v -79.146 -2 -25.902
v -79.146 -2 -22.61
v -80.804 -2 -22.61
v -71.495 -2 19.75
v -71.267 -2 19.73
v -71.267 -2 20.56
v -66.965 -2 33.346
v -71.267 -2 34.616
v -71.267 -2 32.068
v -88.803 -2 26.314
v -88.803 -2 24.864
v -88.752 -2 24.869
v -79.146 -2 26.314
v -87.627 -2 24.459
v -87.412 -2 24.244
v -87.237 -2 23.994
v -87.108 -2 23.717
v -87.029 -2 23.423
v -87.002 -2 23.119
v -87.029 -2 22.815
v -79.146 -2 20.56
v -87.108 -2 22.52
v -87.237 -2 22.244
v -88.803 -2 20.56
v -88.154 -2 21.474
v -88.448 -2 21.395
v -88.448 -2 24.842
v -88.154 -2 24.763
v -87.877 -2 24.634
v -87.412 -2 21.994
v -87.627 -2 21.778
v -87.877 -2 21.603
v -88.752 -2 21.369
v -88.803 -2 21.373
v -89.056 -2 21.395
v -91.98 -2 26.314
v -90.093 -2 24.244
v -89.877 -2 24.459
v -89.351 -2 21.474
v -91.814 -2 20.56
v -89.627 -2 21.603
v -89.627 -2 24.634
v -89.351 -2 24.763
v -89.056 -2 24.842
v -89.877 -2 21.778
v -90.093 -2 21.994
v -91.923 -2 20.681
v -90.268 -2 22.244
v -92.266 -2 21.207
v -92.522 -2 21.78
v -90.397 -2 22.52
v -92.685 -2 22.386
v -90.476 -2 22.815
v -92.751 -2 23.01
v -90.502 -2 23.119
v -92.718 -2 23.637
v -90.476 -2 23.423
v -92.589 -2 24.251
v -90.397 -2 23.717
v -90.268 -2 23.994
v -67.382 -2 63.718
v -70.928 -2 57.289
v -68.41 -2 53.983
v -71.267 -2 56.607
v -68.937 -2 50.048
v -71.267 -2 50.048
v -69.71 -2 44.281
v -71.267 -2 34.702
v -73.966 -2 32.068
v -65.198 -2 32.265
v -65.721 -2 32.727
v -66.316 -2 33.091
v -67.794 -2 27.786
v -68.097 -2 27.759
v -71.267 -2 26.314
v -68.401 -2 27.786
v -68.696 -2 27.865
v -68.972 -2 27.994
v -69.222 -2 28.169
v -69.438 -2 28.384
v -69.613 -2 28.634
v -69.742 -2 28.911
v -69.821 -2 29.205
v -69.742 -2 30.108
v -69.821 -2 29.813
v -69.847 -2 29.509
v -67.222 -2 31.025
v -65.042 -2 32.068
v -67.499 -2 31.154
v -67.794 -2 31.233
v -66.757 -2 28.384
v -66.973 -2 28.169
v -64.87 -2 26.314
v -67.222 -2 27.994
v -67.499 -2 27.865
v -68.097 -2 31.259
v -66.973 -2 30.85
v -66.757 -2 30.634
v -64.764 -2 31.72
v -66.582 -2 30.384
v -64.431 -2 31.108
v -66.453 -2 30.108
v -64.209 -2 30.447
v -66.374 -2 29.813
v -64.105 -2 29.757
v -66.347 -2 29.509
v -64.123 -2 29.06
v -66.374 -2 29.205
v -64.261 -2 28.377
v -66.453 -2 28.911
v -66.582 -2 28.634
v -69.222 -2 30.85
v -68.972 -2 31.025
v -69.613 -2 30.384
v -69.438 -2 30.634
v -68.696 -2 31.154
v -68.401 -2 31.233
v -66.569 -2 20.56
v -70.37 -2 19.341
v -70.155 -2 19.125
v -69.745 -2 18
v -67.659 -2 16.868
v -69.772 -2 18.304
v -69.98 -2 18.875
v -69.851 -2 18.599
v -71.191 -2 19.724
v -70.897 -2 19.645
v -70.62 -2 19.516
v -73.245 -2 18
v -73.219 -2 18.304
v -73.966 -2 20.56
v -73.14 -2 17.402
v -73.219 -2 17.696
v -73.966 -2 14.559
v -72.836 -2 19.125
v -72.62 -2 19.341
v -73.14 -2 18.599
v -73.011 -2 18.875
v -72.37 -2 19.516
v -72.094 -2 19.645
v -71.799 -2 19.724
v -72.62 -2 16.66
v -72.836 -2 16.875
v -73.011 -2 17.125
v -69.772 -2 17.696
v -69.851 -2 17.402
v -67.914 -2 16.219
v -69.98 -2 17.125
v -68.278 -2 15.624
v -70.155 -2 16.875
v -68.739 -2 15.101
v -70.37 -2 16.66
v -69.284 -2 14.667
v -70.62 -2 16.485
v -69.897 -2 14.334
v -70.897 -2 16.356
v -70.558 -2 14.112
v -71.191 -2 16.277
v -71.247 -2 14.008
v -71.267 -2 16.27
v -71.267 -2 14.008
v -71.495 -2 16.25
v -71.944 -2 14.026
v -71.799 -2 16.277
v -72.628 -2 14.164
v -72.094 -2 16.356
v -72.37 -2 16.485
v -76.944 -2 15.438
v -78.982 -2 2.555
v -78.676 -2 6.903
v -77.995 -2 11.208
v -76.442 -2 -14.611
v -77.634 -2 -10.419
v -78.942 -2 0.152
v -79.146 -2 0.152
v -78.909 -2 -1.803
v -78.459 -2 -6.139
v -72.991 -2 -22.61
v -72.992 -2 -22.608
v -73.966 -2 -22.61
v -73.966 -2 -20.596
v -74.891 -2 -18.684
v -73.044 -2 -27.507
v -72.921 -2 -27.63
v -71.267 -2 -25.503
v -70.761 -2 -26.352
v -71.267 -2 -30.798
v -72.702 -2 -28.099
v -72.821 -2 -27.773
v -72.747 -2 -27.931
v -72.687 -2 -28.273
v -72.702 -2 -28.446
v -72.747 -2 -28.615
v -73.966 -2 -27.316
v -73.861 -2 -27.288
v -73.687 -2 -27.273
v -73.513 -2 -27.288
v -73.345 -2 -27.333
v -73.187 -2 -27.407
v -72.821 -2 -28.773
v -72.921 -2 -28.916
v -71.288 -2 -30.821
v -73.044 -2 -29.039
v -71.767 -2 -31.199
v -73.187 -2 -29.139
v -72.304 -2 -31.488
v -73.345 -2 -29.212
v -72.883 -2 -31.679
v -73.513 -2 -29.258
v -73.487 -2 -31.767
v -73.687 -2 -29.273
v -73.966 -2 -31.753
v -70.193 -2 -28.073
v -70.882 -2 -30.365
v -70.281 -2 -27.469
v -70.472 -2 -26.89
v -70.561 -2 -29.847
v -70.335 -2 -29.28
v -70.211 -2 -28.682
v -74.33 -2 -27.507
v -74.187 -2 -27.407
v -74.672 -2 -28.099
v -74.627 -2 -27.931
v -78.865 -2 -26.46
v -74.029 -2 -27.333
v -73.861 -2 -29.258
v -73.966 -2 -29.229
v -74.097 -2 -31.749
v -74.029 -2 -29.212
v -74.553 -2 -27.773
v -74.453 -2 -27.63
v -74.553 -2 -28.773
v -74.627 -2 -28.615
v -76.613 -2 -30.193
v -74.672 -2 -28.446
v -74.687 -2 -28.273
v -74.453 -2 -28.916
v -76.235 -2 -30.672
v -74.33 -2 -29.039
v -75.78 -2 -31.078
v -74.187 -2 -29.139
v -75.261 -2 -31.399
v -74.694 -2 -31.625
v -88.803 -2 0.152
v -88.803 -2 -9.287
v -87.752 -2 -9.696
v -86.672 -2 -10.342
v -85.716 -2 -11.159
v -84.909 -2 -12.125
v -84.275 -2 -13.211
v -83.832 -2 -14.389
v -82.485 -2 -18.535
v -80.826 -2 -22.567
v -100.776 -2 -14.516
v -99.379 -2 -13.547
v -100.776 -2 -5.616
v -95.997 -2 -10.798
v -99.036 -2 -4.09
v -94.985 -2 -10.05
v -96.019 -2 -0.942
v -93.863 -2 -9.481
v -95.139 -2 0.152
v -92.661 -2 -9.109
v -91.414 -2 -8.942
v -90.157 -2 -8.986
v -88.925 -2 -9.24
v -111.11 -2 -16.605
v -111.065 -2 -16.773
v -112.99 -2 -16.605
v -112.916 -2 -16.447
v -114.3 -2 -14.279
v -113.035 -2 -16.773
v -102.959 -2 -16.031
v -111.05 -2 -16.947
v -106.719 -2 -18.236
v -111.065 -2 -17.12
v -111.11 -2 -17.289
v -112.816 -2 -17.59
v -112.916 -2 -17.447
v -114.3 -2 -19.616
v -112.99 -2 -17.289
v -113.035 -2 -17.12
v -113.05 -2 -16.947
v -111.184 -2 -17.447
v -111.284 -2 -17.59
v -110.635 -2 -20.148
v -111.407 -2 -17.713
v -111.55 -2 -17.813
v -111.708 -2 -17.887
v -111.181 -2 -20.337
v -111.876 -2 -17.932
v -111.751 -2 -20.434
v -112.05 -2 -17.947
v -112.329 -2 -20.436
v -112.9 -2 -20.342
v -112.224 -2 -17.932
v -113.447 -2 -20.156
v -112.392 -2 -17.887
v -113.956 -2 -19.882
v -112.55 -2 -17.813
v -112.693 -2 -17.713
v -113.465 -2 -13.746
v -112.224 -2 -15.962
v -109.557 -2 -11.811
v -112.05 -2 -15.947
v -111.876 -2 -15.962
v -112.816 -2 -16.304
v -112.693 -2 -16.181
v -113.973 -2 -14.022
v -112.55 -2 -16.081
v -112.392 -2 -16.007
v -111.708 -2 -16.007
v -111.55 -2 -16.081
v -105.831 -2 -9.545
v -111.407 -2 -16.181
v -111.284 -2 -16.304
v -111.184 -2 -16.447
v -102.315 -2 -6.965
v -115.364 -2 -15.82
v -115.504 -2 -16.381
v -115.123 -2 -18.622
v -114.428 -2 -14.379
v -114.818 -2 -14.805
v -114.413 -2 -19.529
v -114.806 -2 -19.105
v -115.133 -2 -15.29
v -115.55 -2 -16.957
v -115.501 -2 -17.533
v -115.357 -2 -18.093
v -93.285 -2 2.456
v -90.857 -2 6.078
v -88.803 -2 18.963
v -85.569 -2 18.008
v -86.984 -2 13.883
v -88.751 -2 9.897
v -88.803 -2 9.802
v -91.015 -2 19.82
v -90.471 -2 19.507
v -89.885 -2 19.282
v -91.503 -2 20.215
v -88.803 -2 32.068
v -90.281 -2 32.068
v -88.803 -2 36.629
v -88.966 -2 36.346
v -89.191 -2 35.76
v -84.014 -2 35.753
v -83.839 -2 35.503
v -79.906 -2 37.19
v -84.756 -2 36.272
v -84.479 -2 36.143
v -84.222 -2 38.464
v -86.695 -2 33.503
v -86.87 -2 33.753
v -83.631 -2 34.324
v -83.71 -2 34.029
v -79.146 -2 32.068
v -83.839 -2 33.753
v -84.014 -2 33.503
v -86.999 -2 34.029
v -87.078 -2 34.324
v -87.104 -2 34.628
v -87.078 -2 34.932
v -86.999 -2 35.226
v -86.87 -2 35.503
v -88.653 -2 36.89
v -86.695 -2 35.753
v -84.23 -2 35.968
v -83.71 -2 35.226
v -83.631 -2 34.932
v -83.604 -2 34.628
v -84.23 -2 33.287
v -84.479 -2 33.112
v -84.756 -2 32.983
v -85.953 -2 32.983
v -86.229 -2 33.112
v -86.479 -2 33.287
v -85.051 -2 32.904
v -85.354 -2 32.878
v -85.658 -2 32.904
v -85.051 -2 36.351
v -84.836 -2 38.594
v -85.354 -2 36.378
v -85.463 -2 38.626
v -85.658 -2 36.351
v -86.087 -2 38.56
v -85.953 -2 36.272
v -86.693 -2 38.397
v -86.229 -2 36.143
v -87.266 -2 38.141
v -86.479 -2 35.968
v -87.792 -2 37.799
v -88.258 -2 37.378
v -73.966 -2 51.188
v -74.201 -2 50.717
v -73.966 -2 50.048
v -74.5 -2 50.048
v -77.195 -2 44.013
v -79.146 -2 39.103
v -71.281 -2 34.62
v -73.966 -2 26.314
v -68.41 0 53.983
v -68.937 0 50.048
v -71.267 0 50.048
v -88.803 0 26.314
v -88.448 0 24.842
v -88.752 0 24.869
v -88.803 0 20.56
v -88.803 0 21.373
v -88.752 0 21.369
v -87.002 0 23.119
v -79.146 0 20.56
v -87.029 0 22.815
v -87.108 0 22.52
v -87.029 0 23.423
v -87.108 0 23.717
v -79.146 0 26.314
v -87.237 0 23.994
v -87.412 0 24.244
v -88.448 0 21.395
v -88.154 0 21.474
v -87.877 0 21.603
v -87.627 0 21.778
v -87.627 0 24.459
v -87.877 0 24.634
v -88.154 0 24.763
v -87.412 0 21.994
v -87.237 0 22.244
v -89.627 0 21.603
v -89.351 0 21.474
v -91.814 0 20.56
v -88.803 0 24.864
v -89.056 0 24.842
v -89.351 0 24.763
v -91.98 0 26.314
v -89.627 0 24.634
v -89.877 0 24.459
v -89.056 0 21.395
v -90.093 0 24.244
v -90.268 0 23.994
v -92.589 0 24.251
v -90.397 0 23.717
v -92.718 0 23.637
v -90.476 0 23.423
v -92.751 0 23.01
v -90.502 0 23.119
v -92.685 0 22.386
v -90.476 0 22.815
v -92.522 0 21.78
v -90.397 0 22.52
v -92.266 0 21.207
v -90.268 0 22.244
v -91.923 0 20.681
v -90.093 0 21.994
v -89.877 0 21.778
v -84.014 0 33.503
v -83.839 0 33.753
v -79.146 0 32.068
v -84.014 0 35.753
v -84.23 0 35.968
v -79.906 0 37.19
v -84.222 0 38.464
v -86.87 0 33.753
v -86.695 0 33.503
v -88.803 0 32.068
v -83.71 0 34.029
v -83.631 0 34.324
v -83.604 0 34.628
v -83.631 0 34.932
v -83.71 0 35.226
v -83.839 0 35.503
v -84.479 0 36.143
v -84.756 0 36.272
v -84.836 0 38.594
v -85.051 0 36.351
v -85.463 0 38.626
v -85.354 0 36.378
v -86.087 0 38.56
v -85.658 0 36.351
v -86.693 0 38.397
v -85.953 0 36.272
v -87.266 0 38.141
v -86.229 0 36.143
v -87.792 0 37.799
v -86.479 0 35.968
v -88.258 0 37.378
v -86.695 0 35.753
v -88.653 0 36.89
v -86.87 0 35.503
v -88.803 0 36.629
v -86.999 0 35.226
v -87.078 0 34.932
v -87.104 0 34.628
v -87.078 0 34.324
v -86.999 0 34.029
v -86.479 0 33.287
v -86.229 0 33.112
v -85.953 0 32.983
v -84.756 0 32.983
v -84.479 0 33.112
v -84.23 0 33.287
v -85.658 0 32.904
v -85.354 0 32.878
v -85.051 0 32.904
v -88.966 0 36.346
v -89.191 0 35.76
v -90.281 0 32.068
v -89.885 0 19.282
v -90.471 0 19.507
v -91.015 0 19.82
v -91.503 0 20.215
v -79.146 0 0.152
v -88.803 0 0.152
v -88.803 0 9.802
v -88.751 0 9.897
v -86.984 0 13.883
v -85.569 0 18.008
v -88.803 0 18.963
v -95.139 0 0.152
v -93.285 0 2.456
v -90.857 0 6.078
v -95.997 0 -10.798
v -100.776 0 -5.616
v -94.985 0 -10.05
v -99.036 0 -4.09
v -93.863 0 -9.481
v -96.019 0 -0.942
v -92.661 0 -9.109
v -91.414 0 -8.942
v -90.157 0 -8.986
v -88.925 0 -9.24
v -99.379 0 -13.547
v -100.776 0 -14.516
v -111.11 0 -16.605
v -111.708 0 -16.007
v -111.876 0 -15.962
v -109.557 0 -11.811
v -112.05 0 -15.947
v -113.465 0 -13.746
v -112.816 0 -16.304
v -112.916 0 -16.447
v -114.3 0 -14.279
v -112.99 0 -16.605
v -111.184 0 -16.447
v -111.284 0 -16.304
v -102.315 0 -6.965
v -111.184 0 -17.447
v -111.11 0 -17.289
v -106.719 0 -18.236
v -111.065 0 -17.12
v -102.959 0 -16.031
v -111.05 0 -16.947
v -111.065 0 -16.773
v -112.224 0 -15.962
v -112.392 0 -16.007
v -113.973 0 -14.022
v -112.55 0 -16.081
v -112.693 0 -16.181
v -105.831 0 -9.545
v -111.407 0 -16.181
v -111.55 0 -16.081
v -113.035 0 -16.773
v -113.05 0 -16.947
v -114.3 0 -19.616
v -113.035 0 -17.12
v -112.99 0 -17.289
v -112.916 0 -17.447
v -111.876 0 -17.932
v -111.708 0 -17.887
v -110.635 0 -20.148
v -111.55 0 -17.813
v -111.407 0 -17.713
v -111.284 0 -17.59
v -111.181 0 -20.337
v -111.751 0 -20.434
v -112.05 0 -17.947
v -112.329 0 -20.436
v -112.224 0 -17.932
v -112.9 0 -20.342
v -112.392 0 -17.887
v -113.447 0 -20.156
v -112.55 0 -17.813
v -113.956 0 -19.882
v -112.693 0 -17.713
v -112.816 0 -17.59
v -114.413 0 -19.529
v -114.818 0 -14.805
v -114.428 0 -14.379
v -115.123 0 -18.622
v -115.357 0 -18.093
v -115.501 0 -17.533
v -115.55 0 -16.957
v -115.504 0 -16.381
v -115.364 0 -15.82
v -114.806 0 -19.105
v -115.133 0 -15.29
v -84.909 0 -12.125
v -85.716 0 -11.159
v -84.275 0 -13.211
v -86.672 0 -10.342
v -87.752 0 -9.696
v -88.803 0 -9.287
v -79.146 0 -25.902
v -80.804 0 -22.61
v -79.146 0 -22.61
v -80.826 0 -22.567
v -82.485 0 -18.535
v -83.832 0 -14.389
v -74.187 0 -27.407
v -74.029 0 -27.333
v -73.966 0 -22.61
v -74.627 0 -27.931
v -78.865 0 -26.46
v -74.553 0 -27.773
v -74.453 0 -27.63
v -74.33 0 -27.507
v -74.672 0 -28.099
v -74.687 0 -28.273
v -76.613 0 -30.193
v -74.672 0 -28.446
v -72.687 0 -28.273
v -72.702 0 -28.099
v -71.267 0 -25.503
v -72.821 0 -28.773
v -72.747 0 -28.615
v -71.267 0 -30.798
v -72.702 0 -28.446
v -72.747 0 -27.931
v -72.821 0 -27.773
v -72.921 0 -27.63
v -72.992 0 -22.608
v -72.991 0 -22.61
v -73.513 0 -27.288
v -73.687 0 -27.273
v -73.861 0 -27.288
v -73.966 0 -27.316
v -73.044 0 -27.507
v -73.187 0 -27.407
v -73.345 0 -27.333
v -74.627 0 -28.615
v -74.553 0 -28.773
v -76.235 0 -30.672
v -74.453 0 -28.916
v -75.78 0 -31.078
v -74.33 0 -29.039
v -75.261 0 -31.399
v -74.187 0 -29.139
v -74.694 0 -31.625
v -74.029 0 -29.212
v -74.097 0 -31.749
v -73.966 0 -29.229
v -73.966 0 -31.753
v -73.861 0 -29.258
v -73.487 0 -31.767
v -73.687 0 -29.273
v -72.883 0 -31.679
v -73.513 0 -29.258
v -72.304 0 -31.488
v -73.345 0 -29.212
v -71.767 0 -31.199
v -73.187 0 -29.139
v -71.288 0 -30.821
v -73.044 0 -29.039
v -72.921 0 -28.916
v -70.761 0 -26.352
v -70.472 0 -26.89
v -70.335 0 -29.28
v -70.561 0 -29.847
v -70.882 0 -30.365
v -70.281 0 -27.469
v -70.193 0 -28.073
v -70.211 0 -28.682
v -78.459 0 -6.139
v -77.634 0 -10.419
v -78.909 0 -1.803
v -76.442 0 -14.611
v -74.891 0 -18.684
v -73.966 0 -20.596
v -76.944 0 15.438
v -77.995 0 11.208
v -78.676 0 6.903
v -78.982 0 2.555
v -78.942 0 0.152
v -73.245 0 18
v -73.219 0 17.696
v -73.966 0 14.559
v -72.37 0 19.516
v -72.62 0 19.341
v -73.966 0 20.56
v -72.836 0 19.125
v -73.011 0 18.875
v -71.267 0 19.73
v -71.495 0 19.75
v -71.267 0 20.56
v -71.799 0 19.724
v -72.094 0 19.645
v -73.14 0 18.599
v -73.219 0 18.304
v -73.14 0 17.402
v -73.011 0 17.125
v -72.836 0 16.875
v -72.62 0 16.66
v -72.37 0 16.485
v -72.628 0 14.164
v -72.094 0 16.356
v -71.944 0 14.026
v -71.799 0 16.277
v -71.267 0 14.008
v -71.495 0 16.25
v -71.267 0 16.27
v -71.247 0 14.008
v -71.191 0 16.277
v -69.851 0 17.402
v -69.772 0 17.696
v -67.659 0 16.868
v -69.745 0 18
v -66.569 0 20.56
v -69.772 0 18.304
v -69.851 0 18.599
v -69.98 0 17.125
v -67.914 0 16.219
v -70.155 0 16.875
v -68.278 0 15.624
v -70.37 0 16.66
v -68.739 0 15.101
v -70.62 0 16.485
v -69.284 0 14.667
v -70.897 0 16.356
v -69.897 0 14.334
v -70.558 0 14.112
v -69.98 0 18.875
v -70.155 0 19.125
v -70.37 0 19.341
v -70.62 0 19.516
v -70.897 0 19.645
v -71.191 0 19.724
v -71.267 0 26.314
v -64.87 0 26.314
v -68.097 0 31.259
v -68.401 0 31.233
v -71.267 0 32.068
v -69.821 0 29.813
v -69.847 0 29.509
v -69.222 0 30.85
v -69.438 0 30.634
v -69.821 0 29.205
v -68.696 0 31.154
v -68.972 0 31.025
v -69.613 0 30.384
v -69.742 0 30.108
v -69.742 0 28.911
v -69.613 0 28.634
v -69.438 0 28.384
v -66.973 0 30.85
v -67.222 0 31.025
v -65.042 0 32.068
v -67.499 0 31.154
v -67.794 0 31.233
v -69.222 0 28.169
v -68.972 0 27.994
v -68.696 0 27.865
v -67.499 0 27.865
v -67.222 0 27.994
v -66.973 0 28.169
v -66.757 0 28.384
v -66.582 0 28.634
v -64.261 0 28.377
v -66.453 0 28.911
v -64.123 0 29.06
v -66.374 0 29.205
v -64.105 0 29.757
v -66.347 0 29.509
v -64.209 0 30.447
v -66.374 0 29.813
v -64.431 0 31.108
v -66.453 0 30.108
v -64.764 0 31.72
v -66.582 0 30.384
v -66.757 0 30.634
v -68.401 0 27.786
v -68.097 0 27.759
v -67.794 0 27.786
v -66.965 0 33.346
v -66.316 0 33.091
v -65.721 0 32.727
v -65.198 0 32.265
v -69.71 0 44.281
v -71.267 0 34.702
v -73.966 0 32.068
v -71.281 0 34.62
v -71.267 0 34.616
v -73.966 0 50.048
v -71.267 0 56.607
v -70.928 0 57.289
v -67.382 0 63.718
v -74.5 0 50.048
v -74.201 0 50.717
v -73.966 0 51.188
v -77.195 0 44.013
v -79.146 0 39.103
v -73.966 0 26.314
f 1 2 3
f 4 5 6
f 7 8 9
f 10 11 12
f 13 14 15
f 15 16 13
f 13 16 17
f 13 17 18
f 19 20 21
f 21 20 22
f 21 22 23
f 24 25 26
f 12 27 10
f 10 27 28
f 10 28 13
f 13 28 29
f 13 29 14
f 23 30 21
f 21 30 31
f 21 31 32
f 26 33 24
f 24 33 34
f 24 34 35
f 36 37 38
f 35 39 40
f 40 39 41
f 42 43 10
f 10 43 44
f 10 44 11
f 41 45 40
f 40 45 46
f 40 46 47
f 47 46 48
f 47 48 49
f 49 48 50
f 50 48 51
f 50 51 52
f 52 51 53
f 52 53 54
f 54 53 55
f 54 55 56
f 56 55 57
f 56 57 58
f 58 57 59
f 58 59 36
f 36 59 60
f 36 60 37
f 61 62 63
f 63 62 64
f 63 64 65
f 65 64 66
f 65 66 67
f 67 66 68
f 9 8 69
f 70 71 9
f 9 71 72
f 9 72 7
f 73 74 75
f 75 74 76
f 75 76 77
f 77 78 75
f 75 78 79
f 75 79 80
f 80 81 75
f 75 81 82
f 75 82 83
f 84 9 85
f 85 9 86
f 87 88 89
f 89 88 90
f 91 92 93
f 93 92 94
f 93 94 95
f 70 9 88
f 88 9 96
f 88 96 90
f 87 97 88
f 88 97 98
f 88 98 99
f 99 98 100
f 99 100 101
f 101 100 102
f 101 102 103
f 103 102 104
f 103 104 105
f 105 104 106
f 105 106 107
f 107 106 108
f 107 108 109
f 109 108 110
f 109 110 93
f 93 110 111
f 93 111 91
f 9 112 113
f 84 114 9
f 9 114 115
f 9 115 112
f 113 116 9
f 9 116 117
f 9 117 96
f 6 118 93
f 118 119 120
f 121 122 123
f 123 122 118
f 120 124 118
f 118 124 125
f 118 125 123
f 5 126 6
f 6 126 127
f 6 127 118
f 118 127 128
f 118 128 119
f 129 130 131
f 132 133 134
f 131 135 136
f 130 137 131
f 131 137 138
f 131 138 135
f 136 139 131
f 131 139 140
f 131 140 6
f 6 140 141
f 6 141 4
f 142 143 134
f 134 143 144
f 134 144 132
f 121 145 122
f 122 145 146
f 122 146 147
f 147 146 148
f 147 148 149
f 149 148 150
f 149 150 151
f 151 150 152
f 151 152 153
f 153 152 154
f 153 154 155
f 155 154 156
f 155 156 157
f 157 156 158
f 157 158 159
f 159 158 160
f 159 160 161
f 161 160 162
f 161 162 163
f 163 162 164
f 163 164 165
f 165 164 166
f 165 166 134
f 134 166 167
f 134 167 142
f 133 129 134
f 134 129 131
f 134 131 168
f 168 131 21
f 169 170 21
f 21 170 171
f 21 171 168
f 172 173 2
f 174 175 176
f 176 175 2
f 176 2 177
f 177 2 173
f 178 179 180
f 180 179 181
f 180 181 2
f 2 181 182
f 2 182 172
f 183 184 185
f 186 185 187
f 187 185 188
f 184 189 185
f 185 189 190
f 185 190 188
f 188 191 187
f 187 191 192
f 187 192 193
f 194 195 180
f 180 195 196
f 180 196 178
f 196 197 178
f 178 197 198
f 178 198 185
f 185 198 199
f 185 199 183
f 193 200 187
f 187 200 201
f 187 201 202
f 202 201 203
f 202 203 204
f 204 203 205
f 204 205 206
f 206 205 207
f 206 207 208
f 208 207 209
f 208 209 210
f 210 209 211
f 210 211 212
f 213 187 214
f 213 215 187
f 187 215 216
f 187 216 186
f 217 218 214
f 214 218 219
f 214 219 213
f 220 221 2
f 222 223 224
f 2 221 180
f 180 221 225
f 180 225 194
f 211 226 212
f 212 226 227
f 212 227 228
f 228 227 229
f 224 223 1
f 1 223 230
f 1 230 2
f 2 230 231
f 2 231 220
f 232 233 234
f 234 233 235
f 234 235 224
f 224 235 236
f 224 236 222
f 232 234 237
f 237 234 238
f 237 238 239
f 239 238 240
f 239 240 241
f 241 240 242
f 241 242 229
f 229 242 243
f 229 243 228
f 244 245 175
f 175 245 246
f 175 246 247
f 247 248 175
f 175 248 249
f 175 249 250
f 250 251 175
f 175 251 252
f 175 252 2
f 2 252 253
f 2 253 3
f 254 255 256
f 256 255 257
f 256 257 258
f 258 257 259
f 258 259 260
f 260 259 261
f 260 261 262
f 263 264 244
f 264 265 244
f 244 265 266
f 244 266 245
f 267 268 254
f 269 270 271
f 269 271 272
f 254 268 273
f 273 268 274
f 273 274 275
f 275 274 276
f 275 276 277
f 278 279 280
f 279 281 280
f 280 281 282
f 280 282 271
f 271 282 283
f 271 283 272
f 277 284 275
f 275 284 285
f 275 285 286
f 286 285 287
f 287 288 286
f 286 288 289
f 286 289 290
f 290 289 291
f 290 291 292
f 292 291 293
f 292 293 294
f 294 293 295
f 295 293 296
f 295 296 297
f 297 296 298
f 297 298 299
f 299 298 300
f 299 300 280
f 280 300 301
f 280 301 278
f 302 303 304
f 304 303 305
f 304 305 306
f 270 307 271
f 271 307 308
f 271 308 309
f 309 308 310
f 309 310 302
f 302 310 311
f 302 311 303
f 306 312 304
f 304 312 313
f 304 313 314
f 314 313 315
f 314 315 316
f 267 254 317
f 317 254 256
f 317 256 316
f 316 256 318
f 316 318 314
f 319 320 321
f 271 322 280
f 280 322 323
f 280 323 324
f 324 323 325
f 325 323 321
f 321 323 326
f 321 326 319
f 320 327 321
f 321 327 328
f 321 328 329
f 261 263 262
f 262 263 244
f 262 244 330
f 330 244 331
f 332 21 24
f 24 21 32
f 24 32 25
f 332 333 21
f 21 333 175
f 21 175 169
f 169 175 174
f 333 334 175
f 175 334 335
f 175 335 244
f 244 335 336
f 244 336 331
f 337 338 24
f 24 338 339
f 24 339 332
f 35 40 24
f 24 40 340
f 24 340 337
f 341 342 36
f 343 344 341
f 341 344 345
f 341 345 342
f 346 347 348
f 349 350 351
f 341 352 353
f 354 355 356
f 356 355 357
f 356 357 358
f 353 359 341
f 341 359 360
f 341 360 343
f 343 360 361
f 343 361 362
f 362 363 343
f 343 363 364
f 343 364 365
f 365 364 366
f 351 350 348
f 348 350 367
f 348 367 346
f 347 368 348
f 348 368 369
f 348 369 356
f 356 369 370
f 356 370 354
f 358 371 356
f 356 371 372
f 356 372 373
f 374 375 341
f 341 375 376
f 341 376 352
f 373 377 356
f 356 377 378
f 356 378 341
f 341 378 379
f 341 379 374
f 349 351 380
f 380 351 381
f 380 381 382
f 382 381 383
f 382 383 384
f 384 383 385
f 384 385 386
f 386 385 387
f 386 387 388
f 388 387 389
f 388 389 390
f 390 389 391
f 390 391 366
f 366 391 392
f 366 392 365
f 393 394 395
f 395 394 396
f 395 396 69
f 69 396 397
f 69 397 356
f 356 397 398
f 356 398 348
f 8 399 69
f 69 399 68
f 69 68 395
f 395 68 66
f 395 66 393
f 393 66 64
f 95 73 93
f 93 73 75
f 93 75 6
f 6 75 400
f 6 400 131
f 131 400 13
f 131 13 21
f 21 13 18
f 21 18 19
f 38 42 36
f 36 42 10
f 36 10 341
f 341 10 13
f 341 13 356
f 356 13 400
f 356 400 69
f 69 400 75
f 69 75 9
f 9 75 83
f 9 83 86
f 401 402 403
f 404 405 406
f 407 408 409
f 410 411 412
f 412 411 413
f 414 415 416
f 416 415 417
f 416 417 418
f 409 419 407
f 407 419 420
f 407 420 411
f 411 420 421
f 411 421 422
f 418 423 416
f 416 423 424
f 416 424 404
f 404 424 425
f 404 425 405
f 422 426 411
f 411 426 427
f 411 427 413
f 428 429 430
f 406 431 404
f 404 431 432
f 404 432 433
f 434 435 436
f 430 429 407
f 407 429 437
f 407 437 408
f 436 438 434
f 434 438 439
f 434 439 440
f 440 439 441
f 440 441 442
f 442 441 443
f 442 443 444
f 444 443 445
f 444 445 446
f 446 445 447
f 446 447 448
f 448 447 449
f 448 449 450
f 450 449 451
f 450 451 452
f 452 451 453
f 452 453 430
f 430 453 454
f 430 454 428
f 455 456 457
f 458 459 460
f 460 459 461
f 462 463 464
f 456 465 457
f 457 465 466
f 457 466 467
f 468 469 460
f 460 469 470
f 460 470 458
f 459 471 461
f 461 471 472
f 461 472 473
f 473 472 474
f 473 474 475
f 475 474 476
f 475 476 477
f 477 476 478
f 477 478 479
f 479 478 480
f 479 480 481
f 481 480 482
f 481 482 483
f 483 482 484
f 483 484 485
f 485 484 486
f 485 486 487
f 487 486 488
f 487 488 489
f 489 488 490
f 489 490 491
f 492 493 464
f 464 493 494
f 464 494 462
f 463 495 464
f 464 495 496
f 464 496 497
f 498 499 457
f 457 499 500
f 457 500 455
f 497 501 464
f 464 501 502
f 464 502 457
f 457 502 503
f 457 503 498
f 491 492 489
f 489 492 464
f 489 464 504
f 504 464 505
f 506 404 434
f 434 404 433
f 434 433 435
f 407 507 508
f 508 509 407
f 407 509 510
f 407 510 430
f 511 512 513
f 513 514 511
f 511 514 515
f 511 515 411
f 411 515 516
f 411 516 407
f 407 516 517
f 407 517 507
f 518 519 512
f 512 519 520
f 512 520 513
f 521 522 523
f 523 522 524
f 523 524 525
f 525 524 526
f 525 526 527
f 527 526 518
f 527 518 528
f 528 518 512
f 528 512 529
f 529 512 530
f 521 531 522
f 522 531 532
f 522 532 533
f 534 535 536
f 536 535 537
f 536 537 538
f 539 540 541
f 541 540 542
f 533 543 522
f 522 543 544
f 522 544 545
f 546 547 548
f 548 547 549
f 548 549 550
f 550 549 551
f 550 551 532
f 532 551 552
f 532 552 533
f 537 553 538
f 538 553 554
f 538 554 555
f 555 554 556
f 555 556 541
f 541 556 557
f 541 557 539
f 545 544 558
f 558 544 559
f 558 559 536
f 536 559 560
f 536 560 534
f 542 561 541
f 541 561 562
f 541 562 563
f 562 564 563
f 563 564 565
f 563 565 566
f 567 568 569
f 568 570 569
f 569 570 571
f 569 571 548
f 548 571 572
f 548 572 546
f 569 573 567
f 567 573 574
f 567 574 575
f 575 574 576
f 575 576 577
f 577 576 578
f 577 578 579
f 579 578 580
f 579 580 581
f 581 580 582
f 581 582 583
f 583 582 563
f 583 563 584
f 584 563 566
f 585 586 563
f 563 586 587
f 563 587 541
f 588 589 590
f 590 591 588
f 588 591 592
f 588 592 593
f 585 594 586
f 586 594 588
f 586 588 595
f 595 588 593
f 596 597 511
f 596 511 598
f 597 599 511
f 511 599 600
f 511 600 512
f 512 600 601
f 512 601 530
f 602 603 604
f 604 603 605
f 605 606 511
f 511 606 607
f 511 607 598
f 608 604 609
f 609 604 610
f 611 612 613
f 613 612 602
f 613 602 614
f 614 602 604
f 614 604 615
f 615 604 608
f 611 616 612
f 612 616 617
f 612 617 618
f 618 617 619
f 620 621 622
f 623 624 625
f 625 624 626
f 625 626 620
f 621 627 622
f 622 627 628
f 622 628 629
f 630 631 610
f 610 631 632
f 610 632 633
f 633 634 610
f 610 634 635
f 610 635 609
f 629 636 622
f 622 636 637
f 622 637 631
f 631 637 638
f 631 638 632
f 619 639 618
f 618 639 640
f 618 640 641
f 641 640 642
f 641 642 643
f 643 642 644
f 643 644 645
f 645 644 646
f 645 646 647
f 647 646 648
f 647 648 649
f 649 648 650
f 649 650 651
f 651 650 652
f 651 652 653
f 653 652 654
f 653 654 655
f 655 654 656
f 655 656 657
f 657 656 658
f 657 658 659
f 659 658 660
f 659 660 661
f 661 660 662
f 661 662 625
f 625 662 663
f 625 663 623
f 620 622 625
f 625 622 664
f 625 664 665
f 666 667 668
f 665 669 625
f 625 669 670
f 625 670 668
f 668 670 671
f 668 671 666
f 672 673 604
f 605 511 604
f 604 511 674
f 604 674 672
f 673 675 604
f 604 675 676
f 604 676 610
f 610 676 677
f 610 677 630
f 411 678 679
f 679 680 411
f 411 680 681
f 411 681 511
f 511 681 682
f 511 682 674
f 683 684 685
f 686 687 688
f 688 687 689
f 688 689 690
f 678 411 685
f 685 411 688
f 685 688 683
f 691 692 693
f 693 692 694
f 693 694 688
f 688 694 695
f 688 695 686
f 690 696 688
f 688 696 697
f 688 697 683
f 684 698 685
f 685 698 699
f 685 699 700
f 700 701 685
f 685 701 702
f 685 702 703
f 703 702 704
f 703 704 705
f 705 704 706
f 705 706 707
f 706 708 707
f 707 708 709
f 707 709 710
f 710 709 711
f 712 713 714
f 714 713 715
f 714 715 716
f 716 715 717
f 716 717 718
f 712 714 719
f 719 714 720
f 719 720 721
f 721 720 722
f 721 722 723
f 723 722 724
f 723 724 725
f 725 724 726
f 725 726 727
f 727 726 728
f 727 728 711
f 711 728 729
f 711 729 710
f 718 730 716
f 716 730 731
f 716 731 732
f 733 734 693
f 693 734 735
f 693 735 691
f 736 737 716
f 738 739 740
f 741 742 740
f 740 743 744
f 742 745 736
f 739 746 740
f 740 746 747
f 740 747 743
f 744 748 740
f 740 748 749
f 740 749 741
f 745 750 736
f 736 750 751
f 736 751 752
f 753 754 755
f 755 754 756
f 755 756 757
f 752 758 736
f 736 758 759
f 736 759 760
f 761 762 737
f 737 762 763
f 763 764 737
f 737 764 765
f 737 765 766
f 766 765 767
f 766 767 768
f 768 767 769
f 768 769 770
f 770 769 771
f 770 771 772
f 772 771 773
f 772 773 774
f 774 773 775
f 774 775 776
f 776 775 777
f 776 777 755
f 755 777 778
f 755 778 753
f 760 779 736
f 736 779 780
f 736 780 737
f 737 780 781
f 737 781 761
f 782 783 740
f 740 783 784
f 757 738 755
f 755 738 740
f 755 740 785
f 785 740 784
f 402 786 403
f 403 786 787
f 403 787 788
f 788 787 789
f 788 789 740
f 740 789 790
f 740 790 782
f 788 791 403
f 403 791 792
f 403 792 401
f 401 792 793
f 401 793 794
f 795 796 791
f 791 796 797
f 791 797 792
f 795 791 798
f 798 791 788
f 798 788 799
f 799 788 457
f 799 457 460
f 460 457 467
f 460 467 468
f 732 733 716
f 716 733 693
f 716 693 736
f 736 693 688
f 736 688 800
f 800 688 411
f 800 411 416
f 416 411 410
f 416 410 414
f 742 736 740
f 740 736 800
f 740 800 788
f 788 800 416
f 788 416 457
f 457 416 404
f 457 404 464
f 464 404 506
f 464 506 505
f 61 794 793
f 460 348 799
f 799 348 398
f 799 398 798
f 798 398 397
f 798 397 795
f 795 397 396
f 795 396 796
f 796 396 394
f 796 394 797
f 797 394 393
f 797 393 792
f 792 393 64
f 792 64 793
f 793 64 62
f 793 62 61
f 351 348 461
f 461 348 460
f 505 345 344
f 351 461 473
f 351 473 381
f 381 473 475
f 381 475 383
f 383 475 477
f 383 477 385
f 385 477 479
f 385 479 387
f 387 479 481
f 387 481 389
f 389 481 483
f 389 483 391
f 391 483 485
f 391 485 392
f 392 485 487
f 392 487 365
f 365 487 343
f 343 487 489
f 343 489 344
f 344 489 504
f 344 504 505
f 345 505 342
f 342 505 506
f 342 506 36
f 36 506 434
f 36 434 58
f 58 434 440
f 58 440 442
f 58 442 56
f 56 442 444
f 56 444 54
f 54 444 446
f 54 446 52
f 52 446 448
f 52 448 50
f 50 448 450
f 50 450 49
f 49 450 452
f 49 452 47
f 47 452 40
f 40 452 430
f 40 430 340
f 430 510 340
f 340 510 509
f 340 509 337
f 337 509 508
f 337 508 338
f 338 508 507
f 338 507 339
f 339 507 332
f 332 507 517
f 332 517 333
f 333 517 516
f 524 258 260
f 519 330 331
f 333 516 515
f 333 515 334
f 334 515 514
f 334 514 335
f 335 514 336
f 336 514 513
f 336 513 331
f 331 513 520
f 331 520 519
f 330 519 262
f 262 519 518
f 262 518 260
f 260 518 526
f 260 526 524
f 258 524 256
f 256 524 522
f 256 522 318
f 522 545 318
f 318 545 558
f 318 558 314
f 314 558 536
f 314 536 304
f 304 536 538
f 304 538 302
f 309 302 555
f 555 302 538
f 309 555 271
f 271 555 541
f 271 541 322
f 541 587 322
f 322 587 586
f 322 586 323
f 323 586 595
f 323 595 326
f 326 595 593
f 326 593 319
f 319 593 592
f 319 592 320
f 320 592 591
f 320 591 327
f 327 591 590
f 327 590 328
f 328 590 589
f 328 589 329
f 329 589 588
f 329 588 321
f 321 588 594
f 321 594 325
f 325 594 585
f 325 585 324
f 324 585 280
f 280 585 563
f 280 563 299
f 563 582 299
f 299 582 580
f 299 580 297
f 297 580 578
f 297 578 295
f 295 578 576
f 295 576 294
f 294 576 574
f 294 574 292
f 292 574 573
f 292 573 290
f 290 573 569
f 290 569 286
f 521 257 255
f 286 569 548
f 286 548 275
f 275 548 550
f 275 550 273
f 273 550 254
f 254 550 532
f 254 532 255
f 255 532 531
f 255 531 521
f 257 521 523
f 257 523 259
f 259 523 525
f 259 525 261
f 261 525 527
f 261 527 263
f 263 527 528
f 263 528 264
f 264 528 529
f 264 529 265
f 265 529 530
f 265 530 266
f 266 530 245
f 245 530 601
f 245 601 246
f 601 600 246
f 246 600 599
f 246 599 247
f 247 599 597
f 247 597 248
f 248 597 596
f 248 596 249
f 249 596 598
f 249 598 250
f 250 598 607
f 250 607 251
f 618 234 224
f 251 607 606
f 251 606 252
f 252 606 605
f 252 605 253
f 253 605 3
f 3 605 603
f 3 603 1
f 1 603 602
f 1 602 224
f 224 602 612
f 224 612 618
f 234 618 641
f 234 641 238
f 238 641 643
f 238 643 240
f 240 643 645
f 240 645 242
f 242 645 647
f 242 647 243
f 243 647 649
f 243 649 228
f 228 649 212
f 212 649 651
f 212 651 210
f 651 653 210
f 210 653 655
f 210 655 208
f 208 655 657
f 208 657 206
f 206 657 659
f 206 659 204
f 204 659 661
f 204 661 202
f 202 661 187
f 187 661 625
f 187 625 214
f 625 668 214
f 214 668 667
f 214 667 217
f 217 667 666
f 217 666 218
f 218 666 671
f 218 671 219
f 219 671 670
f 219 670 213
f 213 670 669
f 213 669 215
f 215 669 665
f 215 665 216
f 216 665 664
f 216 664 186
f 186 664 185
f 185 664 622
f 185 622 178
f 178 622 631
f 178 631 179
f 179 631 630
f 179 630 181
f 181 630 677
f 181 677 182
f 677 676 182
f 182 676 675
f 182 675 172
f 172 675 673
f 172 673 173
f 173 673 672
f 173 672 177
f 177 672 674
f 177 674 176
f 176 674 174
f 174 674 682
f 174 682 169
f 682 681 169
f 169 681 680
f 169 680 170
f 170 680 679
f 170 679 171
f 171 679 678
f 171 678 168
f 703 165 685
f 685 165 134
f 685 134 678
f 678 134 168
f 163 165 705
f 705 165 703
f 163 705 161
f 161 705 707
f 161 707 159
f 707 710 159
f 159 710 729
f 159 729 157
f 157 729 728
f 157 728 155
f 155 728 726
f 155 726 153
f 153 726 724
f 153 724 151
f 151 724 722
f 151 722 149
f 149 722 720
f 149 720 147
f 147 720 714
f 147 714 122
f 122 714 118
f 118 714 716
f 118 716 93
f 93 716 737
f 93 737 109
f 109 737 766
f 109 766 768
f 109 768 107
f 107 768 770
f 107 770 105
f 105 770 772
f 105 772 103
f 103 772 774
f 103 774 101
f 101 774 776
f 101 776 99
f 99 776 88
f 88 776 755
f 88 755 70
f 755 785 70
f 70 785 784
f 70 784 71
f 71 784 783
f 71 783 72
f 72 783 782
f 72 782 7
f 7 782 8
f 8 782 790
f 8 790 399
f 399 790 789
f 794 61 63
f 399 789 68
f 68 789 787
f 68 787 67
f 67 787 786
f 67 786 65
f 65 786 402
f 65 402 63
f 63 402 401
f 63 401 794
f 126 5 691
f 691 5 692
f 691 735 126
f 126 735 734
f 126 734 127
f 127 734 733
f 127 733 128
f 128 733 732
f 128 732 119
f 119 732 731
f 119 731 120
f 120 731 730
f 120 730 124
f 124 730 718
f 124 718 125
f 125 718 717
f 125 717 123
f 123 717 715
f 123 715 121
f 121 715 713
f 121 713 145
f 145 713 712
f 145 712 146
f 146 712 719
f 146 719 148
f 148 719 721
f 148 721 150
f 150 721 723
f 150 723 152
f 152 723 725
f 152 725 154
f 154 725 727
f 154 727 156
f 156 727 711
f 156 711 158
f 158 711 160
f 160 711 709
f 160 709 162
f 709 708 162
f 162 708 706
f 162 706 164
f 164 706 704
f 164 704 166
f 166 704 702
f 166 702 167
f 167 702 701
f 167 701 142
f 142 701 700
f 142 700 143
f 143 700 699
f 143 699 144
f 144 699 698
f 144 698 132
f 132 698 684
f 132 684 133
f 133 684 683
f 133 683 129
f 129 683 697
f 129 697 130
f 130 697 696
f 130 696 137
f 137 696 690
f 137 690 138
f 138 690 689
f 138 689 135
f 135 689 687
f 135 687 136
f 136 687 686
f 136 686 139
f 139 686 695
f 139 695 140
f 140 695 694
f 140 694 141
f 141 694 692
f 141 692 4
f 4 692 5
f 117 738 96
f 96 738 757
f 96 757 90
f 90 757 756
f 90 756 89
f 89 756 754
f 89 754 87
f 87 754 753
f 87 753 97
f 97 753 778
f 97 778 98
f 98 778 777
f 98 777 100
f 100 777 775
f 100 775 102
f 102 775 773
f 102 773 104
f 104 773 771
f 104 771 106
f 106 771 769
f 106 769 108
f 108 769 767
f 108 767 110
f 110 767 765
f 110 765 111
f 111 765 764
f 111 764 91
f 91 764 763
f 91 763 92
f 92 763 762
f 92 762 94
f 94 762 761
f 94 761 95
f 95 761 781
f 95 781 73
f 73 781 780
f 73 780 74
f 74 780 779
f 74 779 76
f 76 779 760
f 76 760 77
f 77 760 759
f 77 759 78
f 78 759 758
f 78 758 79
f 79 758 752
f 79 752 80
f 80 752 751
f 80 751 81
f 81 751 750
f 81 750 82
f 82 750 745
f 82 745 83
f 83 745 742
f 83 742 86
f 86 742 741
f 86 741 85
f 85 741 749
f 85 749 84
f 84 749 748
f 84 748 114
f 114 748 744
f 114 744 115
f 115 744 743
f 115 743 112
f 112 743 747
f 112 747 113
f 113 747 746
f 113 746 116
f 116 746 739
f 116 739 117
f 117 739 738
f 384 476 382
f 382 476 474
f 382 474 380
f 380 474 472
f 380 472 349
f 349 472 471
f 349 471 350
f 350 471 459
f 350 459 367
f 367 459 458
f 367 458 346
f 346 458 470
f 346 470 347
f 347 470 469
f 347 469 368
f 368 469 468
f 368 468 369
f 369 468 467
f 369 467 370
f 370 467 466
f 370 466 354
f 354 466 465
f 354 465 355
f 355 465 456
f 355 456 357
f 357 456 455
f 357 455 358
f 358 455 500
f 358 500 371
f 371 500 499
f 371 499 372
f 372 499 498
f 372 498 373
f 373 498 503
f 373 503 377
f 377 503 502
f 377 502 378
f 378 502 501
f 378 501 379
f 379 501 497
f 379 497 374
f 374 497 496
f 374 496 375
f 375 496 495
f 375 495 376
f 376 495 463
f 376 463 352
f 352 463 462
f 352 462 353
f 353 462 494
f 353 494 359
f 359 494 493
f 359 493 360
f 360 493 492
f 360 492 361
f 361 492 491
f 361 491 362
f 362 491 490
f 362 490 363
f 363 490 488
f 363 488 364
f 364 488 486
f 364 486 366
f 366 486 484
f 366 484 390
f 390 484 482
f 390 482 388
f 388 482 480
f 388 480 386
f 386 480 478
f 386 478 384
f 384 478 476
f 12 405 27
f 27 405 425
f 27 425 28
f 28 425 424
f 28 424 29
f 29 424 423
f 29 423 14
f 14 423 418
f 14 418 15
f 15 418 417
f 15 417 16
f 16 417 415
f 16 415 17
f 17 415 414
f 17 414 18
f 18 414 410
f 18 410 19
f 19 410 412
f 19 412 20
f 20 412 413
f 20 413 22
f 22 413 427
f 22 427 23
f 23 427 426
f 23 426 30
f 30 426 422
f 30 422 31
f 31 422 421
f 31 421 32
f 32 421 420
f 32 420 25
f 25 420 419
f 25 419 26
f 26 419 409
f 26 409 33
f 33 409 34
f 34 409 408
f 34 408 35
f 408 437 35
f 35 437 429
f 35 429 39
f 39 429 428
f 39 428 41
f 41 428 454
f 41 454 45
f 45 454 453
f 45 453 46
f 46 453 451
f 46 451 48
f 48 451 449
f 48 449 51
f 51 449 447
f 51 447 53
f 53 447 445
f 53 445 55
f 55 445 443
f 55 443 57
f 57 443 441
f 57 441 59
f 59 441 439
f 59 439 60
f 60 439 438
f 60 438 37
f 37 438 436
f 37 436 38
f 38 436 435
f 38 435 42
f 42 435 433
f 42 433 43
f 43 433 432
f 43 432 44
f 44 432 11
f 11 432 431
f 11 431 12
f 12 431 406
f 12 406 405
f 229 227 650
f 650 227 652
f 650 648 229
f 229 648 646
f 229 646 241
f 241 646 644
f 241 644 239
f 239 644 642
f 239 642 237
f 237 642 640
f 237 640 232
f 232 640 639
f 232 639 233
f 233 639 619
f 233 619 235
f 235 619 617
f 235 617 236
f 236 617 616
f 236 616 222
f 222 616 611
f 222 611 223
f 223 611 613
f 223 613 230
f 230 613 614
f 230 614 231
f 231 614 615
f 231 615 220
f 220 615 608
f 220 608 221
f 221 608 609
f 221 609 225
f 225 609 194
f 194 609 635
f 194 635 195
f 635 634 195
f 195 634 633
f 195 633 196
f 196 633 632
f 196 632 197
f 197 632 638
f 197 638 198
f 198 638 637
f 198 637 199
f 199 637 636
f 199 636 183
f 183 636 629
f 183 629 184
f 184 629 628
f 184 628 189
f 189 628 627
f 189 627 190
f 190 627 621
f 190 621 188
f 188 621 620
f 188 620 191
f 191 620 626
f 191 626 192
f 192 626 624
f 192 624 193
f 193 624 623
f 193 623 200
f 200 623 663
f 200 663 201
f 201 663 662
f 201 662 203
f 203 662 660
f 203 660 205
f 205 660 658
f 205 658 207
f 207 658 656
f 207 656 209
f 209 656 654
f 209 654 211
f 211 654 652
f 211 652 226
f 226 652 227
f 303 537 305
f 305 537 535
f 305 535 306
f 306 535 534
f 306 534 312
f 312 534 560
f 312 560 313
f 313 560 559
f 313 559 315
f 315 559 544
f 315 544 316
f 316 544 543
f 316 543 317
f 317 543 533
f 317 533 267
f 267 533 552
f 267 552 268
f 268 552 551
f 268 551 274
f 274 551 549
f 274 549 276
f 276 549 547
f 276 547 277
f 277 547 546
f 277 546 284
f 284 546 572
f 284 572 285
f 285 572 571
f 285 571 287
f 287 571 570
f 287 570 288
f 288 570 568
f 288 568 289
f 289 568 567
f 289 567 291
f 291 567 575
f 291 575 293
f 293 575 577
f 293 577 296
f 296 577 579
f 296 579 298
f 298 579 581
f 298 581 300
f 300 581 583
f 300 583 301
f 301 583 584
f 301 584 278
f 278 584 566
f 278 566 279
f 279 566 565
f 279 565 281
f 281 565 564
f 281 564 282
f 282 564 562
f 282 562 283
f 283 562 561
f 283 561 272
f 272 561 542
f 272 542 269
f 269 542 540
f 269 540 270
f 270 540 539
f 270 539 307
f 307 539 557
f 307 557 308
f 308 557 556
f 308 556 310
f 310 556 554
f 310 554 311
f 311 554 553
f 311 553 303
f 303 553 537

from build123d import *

# Parameters (mm, degrees)
ESQUISSE1_R        = 1
ESQUISSE1_R_2      = 1.75
BOSS_EXTRU_1_DEPTH = 2


with BuildPart() as part:
    # Esquisse1 → Boss.-Extru.1 (new body)
    with BuildSketch(Plane(origin=(-102.847426705, 0, 18.134776225), x_dir=(-0.9358900387216226, 0, 0.3522922585320884), z_dir=(0, -1, 0))):
        with BuildLine():
            Line((-29.681110437, -6.92992201), (-25.193077168, -6.601962606))
            ThreePointArc((-25.193077168, -6.601962606), (-31.376531627, 14.125140597), (-45.701784247, 30.331159651))
            ThreePointArc((-45.701784247, 30.331159651), (-46.468142588, 35.221220478), (-41.578081761, 35.987578819))
            ThreePointArc((-41.578081761, 35.987578819), (-34.948662945, 30.333854293), (-29.254192772, 23.739401754))
            ThreePointArc((-29.254192772, 23.739401754), (-22.67424344, 20.714879645), (-16.604130615, 24.664208385))
            ThreePointArc((-16.604130615, 24.664208385), (-11.931476736, 32.014751147), (-6.198466062, 38.571942755))
            ThreePointArc((-6.198466062, 38.571942755), (-1.248925128, 38.526726063), (-1.294141821, 33.577185129))
            ThreePointArc((-1.294141821, 33.577185129), (-13.111349847, 15.448077308), (-16.215278728, -5.968658704))
            Line((-16.215278728, -5.968658704), (-11.727259944, -5.640718208))
            ThreePointArc((-11.727259944, -5.640718208), (-8.820974111, -6.603051654), (-7.446392196, -9.338578579))
            Line((-7.446392196, -9.338578579), (-6.571881132, -21.306670758))
            ThreePointArc((-6.571881132, -21.306670758), (-7.534214578, -24.212956591), (-10.269741503, -25.587538506))
            Line((-10.269741503, -25.587538506), (-14.757760288, -25.915479002))
            ThreePointArc((-14.757760288, -25.915479002), (-15.331661084, -40.585109619), (-17.13310324, -55.155018018))
            ThreePointArc((-17.13310324, -55.155018018), (-20.734362801, -40.921154617), (-23.735479814, -26.548777137))
            Line((-23.735479814, -26.548777137), (-28.223513084, -26.876736542))
            ThreePointArc((-28.223513084, -26.876736542), (-31.129802724, -25.914414593), (-32.504395461, -23.178893106))
            Line((-32.504395461, -23.178893106), (-33.378953873, -11.210804387))
            ThreePointArc((-33.378953873, -11.210804387), (-32.416631925, -8.304514747), (-29.681110437, -6.92992201))
        make_face()
        with Locations(Location((-43.639933004, 33.159369235, 0), (0, 0, 110.627584138))):
            Circle(ESQUISSE1_R, mode=Mode.SUBTRACT)
        with Locations(Location((-29.389590967, -10.919284916, 0), (0, 0, 110.627584138))):
            Circle(ESQUISSE1_R_2, mode=Mode.SUBTRACT)
        with Locations(Location((-28.515032555, -22.887373635, 0), (0, 0, 110.627584138))):
            Circle(ESQUISSE1_R_2, mode=Mode.SUBTRACT)
        with Locations(Location((-10.561245191, -21.598174446, 0), (0, 0, 110.627584138))):
            Circle(ESQUISSE1_R_2, mode=Mode.SUBTRACT)
        with Locations(Location((-11.435756256, -9.630082268, 0), (0, 0, 110.627584138))):
            Circle(ESQUISSE1_R_2, mode=Mode.SUBTRACT)
        with Locations(Location((-3.746303941, 36.074563942, 0), (0, 0, 110.627584138))):
            Circle(ESQUISSE1_R, mode=Mode.SUBTRACT)
    extrude(amount=BOSS_EXTRU_1_DEPTH)


solid = part.part
